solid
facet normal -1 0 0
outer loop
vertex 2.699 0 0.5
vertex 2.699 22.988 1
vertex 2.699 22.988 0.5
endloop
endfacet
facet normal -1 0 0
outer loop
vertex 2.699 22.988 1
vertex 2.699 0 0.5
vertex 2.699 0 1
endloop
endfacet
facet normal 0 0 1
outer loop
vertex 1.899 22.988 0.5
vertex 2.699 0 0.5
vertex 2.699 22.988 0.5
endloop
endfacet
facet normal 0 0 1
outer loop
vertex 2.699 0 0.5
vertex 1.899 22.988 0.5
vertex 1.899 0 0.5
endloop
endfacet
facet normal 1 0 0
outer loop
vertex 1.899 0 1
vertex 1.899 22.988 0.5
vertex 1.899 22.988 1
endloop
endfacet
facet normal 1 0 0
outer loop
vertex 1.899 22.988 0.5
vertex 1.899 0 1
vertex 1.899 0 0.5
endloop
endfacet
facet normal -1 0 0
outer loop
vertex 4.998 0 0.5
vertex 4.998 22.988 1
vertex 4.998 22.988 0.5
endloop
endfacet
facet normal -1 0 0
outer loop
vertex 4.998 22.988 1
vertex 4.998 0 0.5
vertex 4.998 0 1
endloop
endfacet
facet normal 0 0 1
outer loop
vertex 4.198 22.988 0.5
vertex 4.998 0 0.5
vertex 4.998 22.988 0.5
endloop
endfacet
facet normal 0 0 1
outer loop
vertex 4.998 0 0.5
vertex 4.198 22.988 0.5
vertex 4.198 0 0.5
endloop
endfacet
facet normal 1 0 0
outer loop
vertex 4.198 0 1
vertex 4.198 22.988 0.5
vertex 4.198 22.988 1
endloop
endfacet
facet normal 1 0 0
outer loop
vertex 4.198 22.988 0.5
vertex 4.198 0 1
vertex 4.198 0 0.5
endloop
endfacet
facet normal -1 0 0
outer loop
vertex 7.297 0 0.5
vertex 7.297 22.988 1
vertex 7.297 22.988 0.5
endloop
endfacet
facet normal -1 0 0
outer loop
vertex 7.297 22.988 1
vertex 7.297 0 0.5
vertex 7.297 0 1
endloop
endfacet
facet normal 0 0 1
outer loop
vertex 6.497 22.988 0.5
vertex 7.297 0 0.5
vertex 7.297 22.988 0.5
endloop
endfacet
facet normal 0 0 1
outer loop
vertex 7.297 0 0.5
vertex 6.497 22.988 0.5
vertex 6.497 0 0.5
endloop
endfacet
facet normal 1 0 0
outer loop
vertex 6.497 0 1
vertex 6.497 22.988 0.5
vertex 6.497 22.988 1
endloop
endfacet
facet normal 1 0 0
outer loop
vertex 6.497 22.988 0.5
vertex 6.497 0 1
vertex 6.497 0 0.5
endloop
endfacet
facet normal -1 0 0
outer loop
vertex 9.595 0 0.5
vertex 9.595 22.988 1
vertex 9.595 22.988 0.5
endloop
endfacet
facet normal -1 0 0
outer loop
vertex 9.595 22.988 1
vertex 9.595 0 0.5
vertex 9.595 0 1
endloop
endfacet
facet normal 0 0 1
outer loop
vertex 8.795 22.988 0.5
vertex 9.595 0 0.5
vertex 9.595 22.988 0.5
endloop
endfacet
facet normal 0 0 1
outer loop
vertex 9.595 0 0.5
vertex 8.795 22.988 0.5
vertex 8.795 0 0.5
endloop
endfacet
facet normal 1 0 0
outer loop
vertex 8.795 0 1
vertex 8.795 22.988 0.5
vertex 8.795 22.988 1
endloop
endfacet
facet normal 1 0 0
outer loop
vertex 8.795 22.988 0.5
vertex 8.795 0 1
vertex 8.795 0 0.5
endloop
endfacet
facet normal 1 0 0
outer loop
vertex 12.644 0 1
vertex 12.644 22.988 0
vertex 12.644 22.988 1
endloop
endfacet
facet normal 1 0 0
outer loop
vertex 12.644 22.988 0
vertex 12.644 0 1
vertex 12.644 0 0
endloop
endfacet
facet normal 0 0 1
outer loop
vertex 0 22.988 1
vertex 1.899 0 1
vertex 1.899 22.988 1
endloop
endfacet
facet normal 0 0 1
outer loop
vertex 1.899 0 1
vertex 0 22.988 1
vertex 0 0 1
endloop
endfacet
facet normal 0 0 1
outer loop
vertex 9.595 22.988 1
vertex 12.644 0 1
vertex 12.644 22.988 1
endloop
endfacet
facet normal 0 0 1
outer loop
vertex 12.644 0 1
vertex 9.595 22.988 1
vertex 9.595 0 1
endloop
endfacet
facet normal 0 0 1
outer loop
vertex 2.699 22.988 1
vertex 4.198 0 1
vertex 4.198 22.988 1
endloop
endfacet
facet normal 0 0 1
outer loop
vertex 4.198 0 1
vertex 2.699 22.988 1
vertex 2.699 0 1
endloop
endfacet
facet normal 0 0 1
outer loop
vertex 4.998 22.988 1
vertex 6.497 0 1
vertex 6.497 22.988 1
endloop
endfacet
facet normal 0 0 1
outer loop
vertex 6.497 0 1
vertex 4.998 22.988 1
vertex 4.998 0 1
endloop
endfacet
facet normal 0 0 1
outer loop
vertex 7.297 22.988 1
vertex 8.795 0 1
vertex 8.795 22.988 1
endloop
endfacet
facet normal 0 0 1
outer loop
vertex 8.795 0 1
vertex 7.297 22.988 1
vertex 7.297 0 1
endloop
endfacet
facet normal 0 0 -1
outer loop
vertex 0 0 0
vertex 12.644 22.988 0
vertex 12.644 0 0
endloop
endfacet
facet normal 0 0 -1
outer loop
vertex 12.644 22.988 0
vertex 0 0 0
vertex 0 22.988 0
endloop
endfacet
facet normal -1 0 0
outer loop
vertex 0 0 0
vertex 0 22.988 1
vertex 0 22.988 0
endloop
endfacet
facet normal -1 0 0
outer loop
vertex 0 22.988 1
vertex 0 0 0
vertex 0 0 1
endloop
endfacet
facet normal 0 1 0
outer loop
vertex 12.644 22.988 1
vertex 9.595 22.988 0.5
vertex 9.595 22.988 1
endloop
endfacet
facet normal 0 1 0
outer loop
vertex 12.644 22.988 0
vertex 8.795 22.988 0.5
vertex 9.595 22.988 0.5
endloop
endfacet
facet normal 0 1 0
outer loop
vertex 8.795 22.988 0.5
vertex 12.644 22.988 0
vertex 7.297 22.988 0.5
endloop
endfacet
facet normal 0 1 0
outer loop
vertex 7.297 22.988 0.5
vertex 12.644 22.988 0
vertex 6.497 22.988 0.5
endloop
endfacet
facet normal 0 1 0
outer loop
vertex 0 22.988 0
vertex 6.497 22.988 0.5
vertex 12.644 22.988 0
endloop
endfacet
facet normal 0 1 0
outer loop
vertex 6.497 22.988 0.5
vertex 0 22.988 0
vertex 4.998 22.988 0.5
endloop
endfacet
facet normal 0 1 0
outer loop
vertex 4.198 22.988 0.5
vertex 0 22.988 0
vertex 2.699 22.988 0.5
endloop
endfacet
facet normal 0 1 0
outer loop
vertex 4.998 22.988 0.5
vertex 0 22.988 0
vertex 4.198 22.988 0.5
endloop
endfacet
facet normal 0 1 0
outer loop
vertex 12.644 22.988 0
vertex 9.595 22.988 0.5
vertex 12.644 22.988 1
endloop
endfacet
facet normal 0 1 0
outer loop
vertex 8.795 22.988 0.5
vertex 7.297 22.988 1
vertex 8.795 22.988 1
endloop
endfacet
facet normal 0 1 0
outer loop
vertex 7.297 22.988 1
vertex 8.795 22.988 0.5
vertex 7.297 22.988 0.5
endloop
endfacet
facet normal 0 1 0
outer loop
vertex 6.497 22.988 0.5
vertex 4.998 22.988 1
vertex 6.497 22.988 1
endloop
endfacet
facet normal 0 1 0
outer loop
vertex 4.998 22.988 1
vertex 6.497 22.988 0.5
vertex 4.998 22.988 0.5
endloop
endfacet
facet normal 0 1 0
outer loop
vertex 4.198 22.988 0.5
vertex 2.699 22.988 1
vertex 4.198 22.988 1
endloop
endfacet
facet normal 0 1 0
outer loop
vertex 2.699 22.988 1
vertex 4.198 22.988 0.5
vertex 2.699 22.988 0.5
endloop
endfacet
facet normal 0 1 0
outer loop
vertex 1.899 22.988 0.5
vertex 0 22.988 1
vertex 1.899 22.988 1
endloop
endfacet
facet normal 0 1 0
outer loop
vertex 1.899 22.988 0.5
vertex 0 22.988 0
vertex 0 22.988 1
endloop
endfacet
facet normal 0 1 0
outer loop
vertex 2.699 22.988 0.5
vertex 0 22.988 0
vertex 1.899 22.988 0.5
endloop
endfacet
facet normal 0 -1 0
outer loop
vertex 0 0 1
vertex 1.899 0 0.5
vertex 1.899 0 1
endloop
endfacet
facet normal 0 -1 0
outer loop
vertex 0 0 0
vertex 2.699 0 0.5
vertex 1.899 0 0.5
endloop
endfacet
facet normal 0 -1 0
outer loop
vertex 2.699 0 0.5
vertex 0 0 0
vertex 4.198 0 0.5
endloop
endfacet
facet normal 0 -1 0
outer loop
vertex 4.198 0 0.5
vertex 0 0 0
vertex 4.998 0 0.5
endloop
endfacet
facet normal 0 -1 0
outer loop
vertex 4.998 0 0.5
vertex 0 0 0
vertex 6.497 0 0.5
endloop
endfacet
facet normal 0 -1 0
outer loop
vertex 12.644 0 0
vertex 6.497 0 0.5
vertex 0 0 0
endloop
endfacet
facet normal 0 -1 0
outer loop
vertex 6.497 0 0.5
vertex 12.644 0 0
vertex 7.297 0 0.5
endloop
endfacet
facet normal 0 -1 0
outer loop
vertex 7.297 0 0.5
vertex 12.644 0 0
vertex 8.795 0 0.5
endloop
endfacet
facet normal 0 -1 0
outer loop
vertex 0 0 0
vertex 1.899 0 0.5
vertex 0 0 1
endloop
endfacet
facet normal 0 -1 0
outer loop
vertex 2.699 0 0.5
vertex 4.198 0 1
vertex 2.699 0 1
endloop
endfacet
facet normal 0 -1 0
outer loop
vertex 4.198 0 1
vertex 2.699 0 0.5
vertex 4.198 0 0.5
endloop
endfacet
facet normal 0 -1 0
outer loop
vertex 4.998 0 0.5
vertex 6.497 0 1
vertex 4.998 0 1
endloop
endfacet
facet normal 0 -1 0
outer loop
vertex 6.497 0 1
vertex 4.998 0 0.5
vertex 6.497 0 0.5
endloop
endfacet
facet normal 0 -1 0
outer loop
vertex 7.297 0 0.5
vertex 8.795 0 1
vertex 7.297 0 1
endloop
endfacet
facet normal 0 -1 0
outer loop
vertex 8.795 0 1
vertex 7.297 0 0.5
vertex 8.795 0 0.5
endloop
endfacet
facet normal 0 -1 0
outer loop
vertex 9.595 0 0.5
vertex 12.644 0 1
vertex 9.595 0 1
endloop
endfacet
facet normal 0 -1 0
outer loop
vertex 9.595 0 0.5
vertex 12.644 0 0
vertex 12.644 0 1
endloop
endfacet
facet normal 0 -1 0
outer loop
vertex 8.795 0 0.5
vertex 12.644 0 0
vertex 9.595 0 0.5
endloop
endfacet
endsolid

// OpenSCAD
/*
 * PROMPT: Side wall panel of the Polish outdoor toilet (sławojka) in H0 scale (1:87).
 * Plain facade with vertical plank grooves on exterior face. Used for both left and
 * right sides (identical). Flat 1 mm panel, exterior face up.
 */

$fn = 32;
S = 1/87;
panel_t = 1.0;

bld_d_real   = 1100;
bld_h_real   = 2000;
plank_period = 200 * S;
groove_w     = 0.8;
groove_d     = 0.5;

bld_d = bld_d_real * S;
bld_h = bld_h_real * S;

module wall_side() {
    difference() {
        cube([bld_d, bld_h, panel_t]);

        // vertical plank grooves on exterior face
        for (i = [1 : floor(bld_d / plank_period) - 1]) {
            gx = i * plank_period - groove_w/2;
            translate([gx, -1, panel_t - groove_d])
                cube([groove_w, bld_h+2, groove_d+1]);
        }
    }
}

wall_side();
